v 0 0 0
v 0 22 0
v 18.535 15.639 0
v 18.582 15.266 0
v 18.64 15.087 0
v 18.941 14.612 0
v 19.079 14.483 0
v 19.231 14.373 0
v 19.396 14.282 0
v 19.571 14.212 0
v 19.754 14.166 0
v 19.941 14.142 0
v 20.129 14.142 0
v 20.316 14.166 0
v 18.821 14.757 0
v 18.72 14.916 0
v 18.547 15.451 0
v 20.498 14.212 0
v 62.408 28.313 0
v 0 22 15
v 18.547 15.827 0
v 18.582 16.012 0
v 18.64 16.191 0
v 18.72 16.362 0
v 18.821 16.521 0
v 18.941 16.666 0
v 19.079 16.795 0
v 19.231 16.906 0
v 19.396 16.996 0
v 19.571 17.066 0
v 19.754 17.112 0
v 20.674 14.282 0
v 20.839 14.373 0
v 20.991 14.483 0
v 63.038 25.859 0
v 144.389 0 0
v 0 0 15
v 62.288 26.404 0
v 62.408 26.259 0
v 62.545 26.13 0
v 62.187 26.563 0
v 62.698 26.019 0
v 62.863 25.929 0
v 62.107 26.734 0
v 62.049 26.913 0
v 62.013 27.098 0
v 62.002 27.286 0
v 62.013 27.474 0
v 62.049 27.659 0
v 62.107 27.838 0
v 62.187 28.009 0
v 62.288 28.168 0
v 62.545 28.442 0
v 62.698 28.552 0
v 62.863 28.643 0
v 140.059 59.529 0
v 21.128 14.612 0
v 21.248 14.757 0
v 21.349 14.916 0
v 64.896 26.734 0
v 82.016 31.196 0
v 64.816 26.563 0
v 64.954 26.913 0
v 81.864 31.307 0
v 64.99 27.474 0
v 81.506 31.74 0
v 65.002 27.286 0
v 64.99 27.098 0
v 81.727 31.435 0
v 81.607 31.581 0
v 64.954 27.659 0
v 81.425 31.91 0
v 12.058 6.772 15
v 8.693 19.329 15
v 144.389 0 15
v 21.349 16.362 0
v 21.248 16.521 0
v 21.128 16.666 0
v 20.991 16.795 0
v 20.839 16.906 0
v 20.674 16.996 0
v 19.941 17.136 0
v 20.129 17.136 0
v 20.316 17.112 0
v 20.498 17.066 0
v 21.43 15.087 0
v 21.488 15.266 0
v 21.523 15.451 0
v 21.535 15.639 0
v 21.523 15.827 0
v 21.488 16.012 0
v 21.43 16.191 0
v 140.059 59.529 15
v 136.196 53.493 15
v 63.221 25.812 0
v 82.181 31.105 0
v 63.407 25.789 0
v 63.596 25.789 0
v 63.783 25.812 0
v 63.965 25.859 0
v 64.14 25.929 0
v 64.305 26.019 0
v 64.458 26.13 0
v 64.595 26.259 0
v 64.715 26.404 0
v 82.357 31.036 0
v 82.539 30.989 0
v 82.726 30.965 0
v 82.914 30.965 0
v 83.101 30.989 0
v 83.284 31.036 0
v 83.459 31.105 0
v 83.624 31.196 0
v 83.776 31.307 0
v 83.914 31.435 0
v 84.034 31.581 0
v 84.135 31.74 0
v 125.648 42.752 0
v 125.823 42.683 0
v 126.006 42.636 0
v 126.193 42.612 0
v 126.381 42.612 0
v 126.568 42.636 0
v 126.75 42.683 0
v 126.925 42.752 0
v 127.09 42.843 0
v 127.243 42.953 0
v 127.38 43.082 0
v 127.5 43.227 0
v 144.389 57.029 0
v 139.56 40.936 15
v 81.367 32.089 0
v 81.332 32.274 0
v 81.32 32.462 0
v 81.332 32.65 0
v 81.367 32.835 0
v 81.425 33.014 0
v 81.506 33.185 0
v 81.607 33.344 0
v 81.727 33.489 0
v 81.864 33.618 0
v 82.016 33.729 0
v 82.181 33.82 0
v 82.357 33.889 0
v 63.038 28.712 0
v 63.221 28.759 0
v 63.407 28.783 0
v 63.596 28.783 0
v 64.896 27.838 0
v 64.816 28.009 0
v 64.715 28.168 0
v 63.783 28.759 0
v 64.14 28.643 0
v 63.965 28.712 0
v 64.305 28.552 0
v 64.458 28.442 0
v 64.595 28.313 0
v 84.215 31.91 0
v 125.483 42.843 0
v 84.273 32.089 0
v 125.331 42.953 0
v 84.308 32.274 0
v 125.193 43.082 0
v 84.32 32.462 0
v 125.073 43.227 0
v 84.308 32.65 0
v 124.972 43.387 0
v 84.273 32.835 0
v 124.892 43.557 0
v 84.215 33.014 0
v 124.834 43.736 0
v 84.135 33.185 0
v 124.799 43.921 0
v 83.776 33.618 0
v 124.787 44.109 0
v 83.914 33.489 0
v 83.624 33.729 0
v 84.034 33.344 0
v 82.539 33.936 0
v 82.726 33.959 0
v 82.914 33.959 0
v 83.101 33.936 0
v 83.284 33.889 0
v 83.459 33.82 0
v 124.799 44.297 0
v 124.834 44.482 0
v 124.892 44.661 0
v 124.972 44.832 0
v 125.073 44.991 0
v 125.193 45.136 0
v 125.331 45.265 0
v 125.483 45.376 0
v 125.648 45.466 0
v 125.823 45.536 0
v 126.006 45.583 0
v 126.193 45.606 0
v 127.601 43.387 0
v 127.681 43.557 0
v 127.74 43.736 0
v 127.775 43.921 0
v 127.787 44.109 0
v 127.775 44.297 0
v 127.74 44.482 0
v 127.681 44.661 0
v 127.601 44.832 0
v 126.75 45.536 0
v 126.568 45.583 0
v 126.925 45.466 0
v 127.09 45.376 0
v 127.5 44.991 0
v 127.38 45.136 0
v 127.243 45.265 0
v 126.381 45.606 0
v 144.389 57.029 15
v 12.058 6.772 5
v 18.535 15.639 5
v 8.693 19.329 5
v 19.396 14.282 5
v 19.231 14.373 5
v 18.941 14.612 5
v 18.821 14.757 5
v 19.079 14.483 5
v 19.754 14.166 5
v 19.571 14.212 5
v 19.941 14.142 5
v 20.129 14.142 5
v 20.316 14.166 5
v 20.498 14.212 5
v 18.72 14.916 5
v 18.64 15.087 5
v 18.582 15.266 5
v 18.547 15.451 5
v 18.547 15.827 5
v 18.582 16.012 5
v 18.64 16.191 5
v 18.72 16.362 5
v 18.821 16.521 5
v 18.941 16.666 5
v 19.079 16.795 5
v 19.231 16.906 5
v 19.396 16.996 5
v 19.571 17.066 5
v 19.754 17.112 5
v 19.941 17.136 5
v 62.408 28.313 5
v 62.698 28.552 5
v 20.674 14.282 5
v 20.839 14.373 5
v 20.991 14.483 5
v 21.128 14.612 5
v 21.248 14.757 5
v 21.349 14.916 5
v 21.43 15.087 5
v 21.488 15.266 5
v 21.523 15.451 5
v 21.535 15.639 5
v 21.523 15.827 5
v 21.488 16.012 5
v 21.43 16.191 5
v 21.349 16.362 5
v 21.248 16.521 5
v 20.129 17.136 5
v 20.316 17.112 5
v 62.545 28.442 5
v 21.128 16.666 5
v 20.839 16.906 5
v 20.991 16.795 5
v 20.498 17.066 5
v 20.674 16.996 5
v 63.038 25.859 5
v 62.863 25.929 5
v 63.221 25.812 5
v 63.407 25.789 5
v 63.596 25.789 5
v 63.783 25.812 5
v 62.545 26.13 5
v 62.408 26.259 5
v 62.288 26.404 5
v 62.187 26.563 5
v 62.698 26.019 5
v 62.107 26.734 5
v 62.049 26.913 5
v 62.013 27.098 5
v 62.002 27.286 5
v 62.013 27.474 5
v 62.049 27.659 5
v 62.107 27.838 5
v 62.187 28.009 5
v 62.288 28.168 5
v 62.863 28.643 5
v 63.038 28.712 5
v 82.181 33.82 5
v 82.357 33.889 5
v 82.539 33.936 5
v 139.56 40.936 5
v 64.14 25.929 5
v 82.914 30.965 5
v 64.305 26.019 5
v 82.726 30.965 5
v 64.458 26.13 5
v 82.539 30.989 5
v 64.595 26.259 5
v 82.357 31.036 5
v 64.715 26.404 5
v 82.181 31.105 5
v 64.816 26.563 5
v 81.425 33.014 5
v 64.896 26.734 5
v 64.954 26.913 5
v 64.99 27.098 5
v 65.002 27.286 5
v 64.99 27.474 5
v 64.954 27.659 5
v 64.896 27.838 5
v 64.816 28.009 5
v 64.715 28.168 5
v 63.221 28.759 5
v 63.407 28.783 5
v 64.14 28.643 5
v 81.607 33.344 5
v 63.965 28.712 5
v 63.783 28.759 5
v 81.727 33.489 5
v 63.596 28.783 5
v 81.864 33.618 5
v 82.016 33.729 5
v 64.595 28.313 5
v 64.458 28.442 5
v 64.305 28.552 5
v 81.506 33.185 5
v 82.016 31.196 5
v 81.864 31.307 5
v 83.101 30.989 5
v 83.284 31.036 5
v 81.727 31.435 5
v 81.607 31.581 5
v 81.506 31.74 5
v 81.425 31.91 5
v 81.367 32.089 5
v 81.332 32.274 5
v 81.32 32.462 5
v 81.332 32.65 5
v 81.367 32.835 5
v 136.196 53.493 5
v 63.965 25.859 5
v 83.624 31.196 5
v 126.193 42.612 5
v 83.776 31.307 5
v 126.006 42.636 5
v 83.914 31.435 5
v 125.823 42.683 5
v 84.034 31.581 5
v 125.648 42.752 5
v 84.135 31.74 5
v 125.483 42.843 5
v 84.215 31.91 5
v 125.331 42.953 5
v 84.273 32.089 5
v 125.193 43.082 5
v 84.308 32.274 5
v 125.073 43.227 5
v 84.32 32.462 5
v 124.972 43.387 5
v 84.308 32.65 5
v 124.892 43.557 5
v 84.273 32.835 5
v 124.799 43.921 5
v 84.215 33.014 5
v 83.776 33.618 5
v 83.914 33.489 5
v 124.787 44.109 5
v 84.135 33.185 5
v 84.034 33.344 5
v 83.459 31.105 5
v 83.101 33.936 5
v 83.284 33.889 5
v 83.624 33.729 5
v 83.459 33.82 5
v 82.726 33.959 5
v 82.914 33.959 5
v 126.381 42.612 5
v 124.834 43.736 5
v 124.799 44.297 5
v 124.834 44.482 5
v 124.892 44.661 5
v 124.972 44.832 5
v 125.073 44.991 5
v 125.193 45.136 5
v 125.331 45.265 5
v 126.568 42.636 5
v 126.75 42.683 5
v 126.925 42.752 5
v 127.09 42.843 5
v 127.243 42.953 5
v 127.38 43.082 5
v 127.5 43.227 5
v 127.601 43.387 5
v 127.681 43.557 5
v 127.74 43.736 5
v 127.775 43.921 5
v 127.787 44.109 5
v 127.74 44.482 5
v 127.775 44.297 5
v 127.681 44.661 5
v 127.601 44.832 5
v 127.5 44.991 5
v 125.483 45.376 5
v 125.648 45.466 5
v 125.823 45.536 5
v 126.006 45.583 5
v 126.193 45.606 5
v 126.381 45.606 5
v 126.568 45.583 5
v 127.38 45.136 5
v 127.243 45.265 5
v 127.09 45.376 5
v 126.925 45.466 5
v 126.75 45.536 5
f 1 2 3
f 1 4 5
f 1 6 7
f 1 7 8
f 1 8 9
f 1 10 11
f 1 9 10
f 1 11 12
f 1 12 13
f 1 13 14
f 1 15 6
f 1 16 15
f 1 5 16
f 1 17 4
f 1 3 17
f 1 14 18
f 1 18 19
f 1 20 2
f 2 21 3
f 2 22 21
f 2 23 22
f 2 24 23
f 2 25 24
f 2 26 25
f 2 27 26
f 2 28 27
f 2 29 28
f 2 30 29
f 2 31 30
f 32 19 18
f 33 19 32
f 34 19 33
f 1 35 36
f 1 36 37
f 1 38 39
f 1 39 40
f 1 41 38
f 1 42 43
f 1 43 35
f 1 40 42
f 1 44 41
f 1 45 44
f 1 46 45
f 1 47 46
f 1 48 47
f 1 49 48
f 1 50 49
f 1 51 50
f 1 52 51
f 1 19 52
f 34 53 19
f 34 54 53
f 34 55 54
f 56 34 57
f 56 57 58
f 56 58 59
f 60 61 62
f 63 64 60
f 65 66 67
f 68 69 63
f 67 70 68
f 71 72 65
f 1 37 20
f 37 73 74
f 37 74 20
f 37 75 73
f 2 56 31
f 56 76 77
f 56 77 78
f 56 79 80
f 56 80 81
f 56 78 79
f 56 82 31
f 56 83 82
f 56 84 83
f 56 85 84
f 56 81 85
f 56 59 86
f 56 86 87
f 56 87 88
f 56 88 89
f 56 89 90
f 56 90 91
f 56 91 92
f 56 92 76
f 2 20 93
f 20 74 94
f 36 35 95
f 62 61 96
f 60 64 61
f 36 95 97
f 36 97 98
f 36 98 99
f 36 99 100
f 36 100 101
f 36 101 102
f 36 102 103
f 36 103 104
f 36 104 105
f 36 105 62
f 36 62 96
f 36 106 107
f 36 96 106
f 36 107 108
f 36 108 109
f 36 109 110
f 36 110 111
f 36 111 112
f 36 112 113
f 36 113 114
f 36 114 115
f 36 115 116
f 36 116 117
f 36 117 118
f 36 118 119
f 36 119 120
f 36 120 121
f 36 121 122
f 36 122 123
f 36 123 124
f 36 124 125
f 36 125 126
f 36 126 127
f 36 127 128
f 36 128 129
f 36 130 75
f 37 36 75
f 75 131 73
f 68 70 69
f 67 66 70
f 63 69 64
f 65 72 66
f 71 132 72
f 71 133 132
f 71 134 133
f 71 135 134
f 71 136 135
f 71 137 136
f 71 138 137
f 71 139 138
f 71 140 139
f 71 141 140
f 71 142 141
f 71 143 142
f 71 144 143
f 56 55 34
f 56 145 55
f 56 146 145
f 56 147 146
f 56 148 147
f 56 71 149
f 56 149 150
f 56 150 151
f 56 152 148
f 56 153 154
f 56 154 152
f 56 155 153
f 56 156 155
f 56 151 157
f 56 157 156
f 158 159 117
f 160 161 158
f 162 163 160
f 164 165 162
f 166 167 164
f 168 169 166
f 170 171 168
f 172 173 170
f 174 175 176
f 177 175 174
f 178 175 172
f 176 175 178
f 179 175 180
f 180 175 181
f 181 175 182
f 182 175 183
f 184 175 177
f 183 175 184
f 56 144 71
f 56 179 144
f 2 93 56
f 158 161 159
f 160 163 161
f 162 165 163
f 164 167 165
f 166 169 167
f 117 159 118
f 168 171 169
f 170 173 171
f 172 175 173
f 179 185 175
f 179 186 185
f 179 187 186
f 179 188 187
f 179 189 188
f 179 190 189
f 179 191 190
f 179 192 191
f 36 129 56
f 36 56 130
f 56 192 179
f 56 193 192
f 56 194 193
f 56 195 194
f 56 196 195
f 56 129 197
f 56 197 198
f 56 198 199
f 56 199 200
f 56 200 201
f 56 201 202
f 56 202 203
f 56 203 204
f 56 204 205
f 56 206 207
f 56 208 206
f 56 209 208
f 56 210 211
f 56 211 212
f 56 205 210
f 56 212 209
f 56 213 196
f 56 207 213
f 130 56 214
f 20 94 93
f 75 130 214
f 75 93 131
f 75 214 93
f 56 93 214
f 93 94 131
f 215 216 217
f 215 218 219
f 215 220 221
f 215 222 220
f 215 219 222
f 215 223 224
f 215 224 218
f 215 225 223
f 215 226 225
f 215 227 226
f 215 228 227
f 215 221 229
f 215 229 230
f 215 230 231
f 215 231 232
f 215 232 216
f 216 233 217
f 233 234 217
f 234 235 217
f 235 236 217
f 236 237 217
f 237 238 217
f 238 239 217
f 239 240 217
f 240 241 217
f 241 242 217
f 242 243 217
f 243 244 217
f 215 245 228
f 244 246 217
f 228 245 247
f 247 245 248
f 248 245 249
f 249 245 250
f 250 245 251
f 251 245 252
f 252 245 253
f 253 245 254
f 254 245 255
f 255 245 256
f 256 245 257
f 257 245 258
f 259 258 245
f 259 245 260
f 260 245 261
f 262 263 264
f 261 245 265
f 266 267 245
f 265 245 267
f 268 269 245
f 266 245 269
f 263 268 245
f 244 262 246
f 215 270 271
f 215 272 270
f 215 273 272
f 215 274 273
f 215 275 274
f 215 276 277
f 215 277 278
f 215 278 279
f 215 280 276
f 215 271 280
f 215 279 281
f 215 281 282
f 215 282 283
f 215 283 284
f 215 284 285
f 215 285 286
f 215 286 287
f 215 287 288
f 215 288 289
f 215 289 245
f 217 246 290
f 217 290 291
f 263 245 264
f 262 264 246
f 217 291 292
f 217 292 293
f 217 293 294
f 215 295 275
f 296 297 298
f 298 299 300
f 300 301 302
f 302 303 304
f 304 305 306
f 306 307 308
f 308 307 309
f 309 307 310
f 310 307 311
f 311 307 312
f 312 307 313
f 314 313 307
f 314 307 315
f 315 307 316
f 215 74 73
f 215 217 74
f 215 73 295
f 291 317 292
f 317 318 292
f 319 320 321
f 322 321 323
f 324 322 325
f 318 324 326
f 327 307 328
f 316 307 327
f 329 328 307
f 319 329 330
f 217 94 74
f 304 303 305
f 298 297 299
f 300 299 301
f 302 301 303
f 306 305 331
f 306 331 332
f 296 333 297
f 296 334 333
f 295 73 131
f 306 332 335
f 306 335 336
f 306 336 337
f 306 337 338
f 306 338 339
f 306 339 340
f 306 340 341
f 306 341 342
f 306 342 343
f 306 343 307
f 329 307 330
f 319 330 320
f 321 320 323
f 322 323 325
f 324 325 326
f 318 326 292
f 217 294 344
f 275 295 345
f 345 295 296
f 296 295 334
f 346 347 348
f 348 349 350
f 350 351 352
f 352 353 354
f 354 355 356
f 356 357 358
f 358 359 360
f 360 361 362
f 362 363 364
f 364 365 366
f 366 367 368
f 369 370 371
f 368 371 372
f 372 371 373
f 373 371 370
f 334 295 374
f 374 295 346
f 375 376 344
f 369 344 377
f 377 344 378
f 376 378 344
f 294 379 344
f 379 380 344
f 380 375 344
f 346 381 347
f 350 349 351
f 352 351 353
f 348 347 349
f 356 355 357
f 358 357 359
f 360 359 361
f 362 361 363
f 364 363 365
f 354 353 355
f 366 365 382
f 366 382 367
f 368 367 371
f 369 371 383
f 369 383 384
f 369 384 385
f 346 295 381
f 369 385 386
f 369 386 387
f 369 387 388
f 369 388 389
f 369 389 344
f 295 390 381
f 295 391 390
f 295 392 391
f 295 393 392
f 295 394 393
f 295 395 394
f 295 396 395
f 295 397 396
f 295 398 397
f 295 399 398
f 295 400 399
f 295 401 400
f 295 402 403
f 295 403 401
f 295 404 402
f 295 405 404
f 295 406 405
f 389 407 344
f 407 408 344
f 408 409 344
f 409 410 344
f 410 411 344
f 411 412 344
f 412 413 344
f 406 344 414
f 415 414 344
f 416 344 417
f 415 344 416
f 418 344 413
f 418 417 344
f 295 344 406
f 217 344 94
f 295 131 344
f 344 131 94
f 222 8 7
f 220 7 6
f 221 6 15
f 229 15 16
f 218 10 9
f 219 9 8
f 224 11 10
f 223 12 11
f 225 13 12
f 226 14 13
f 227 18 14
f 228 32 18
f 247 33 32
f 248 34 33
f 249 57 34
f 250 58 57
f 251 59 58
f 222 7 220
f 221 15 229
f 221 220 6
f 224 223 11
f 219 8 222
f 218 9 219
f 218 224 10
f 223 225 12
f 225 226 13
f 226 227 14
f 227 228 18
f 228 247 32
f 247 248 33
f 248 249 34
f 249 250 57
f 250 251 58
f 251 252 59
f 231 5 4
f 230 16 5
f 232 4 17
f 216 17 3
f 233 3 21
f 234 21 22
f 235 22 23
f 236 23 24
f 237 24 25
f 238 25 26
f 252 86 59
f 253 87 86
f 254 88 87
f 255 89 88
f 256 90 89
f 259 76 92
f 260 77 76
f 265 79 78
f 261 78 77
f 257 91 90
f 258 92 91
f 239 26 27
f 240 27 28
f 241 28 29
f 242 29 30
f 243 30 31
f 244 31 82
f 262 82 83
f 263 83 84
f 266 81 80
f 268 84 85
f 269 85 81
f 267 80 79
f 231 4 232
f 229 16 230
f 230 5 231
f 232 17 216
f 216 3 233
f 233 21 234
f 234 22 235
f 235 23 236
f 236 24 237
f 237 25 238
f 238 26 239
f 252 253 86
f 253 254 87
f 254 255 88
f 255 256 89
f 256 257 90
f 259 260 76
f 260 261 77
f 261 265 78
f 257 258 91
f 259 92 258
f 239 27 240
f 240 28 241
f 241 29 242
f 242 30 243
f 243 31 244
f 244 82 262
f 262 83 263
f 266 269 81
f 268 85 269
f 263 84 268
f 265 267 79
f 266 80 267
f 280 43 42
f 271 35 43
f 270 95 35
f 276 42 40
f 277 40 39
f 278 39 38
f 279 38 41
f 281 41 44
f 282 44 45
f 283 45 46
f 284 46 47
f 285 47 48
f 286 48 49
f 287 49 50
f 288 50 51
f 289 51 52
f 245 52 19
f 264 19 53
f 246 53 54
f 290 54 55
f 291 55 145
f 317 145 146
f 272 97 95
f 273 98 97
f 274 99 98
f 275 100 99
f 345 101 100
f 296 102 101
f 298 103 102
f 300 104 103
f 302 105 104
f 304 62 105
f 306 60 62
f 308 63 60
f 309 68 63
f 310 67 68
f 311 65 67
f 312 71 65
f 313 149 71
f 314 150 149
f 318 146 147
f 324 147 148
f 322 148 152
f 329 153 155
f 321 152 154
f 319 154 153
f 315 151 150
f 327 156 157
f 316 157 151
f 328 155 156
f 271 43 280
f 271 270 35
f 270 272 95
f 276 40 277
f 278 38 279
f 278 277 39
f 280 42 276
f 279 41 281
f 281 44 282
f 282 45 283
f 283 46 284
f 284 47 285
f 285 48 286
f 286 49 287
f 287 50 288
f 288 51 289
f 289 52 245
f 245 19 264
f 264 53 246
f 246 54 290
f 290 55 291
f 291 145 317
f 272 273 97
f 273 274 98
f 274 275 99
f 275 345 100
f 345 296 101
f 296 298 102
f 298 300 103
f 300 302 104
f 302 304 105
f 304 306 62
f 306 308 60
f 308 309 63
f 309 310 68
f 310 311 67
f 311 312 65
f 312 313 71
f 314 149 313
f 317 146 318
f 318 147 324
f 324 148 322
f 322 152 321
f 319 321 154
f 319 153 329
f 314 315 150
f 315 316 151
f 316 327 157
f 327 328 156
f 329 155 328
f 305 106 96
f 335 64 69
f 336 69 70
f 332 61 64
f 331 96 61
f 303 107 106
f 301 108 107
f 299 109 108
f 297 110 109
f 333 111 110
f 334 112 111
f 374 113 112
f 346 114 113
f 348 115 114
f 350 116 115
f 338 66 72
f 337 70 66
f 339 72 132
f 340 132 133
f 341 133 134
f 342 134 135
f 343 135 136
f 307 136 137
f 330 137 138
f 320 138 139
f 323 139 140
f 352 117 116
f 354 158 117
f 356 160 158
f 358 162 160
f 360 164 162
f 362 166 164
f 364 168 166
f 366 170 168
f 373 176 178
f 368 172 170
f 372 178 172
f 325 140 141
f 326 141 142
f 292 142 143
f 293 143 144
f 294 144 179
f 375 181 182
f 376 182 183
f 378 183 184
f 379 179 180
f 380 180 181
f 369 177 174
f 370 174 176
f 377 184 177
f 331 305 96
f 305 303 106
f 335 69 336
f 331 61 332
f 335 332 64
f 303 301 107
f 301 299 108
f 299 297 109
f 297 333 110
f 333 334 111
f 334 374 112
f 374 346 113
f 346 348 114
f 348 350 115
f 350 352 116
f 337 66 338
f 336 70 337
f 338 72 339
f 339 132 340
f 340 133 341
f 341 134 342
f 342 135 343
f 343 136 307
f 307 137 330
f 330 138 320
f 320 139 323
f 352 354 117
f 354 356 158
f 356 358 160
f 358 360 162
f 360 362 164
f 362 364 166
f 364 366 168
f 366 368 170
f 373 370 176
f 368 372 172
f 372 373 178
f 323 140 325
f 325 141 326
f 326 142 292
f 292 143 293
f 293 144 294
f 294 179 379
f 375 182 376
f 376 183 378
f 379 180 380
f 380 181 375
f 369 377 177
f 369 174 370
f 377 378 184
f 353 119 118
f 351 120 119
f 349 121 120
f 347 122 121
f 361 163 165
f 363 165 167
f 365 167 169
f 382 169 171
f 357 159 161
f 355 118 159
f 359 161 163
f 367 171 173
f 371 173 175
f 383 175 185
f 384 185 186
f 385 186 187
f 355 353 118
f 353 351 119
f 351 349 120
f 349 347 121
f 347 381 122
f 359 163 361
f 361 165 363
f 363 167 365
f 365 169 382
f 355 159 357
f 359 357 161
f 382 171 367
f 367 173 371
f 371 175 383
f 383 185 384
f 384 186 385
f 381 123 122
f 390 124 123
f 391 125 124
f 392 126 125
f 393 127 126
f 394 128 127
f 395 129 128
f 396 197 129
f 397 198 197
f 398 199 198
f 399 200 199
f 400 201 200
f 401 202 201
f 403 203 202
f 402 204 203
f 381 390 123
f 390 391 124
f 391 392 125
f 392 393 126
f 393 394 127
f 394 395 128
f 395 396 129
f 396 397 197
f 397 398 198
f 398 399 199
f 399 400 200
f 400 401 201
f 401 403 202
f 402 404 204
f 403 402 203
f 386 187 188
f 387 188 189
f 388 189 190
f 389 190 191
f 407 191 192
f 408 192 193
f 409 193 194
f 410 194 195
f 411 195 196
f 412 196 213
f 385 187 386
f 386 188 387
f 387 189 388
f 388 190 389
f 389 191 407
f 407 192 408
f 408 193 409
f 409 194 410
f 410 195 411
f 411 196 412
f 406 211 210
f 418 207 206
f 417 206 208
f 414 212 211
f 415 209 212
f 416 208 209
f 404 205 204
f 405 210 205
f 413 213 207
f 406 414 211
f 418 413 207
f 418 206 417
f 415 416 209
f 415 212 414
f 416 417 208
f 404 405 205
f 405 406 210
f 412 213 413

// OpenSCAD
$fn = 50;

difference() {
    // outer
    linear_extrude(height=15) {
        polygon(points=[
            [0, 0],
            [0, 22],
            [140.059245, 59.528762],
            [144.389372, 57.028762],
            [144.389372, 0],
            [0, 0]
        ]);
    }

    // // inner
    translate([0, 0, 5])
    linear_extrude(height=15) {
        polygon(points=[
            [8.693332, 19.329371],
            [136.195542, 53.493485],
            [139.560189, 40.93645],
            [12.05798, 6.772336],
            [8.693332, 19.329371],
            [8.693332, 19.329371]
        ]);
    }

    // Marker: x=20.034914, y=15.639044
    translate([20.034914, 15.639044, -1])
    cylinder(h = 10, d = 3);

    // Marker: x=63.501577, y=27.285901
    translate([63.501577, 27.285901, -1])
    cylinder(h = 10, d = 3);

    // Marker: x=82.820093, y=32.462282
    translate([82.820093, 32.462282, -1])
    cylinder(h = 10, d = 3);

    // Marker: x=126.286755, y=44.109139
    translate([126.286755, 44.109139, -1])
    cylinder(h = 10, d = 3);
}





/*
// https://logo2openscad.becdetat.com
// outer
pendown
fd 5 + 12 + 5
rt 75
fd 10 + 65*2 + 10 - 5
rt 45
fd 5
sety 0
setx 0

seth 0

pu
fd 5 + 12
rt 75
fd 9

// inner
pd
fd 65*2 + 2
rt 90
fd 12 + 1
rt 90
fd 65*2 + 2
rt 90
fd 12 + 1

pu
setxy 0, 0
seth 0

// markers
fd 5 + 12
rt 75
fd 9
rt 90
fd 6.5
lt 90
fd 10
extmarker
fd 65 - 20
extmarker
fd 20
extmarker
fd 65 - 20
extmarker
*/
